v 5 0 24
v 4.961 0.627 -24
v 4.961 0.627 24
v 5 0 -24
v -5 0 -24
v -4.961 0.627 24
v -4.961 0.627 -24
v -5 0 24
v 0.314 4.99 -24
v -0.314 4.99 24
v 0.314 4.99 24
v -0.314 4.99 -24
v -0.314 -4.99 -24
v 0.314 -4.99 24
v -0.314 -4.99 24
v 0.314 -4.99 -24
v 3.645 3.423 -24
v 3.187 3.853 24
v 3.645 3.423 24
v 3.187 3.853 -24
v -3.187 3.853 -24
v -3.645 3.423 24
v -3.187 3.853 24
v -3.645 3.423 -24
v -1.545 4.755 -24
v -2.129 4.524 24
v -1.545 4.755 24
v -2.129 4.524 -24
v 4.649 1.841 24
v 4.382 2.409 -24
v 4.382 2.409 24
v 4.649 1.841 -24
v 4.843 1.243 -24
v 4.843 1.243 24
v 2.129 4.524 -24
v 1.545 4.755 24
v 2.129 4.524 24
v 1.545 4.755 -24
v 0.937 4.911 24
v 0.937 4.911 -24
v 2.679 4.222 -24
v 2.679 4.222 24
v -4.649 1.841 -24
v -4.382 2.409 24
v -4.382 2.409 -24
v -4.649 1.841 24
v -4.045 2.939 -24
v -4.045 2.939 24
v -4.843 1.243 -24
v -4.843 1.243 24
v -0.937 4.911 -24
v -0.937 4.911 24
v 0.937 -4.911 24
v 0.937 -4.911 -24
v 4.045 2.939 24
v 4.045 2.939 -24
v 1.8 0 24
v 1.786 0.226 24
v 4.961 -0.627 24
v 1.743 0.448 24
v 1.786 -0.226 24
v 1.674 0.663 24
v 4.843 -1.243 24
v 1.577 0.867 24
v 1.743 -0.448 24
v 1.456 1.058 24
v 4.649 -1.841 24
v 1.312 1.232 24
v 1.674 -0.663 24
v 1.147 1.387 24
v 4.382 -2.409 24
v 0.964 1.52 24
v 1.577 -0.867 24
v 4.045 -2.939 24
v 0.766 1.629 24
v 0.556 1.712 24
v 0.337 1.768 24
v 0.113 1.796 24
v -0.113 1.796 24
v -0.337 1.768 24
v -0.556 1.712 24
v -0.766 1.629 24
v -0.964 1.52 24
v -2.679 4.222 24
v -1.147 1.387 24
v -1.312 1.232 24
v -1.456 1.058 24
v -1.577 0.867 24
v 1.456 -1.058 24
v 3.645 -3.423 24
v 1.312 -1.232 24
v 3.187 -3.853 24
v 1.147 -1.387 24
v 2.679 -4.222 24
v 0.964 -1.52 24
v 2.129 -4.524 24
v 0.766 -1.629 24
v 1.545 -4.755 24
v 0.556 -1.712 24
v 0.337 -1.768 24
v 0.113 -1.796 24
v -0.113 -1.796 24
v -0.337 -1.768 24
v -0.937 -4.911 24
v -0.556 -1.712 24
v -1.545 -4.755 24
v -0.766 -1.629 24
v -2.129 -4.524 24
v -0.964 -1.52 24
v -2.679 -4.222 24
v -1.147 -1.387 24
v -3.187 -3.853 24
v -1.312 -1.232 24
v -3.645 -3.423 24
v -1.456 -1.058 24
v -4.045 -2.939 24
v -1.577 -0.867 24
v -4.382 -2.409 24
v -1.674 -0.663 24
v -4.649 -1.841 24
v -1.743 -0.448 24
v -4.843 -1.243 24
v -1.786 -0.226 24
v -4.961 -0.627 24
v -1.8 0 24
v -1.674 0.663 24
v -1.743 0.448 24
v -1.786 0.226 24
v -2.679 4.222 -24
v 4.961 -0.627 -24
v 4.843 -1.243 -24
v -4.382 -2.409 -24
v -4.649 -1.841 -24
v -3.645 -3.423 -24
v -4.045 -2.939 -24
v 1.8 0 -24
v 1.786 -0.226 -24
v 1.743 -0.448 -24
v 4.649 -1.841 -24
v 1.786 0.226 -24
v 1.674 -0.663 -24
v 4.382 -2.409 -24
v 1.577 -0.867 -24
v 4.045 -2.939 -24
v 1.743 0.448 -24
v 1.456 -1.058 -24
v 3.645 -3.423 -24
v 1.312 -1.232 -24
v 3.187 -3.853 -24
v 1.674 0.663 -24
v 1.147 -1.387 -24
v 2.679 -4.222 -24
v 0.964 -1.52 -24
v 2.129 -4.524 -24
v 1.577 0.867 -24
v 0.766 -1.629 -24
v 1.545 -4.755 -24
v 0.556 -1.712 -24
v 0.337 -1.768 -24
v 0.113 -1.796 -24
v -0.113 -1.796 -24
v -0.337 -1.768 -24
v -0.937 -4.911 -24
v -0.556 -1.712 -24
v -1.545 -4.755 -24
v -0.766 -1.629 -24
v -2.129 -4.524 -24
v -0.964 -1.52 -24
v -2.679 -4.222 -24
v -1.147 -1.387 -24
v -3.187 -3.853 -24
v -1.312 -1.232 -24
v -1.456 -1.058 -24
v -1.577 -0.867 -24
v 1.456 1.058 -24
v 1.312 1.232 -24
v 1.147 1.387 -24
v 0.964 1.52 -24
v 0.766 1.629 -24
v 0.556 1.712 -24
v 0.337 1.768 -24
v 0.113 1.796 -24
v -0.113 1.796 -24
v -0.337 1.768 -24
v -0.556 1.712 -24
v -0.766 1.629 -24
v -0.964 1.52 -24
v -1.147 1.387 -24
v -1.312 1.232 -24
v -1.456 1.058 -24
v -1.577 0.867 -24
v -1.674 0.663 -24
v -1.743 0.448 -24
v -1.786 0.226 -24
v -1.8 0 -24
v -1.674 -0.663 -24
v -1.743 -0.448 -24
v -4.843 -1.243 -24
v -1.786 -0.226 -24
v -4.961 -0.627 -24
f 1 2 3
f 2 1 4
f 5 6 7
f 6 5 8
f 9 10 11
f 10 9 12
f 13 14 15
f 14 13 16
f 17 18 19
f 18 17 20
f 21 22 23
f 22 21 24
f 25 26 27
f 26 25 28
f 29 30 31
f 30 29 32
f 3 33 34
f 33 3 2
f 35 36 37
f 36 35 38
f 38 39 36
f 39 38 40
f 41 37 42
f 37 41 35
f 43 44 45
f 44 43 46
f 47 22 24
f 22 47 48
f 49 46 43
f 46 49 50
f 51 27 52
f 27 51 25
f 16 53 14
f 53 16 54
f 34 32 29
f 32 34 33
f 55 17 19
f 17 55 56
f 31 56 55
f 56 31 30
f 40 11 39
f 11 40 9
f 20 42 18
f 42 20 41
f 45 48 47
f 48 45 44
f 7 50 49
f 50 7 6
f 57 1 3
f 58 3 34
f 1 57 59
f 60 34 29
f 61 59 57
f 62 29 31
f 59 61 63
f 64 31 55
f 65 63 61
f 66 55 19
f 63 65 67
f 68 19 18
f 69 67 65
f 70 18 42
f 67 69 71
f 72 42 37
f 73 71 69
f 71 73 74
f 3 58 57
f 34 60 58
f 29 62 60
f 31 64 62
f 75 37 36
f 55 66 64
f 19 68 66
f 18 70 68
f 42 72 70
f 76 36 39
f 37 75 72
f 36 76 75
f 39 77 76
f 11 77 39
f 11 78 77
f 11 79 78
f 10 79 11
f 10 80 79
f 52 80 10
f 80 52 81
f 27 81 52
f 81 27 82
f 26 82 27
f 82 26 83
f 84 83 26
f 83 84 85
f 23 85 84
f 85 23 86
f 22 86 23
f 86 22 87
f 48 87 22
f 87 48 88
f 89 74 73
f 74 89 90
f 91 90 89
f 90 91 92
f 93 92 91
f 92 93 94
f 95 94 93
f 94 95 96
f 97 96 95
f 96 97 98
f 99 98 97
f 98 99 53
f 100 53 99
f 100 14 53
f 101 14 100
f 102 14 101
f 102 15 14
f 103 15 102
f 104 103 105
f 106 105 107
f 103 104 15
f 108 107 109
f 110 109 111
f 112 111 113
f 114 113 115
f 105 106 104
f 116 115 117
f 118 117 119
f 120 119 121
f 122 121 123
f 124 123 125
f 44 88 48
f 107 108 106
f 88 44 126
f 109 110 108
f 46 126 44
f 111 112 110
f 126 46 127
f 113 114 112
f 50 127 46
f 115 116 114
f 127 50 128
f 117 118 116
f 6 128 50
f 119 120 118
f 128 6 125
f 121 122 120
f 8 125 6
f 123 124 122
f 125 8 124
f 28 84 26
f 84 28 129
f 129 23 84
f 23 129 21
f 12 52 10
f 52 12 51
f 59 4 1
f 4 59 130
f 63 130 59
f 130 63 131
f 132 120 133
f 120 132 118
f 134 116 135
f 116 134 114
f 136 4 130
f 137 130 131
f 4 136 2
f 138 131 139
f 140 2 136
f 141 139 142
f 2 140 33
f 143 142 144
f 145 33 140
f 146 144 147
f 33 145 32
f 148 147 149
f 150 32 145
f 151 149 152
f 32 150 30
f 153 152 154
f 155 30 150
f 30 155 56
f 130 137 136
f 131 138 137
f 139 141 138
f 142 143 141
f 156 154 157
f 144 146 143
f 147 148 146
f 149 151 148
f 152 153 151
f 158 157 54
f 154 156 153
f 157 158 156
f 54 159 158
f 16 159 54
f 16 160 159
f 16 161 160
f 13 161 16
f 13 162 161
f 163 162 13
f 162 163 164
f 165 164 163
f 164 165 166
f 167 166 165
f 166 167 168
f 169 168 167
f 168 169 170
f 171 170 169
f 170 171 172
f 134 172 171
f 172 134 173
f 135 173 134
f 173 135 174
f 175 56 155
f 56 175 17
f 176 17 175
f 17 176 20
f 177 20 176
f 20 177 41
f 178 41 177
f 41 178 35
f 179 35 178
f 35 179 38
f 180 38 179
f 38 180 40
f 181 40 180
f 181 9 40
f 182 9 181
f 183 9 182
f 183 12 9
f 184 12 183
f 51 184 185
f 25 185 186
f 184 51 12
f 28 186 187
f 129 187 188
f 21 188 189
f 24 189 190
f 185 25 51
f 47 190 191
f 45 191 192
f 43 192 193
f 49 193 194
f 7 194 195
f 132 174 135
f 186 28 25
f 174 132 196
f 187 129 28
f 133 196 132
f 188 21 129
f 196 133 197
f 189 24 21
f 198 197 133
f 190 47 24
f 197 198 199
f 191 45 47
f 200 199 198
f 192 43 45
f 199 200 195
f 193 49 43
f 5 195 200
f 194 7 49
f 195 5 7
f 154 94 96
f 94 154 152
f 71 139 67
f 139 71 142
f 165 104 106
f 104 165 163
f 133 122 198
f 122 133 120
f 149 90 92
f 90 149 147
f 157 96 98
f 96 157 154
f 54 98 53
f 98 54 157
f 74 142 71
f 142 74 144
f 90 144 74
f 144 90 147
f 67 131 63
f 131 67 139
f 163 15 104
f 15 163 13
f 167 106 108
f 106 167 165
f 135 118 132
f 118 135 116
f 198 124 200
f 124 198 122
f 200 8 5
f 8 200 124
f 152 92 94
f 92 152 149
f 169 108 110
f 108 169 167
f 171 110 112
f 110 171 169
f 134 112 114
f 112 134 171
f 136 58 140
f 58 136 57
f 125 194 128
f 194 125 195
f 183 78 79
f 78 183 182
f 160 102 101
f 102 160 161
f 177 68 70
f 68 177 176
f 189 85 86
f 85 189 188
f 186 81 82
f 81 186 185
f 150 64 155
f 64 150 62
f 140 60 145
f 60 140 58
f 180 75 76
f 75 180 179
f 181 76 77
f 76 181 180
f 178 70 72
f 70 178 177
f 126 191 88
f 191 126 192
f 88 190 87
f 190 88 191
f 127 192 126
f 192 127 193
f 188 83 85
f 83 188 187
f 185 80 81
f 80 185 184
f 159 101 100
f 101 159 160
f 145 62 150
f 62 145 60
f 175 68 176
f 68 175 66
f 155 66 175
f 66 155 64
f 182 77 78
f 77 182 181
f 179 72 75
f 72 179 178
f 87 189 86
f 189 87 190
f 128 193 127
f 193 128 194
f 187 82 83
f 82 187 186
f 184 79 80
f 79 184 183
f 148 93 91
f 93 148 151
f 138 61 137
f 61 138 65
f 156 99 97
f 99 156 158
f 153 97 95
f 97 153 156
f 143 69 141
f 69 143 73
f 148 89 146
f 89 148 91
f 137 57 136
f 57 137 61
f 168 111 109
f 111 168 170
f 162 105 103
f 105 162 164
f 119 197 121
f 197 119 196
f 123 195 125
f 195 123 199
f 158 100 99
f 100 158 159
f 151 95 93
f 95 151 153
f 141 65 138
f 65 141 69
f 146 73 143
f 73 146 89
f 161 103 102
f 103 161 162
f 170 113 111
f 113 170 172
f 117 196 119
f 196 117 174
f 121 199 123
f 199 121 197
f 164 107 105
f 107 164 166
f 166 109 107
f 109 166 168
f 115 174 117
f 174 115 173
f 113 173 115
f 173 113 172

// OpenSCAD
$fn = 50;


difference() {
	union() {
		translate(v = [0, 0, -24.0000000000]) {
			cylinder(h = 48, r = 5.0000000000);
		}
	}
	union() {
		translate(v = [0, 0, -100.0000000000]) {
			cylinder(h = 200, r = 1.8000000000);
		}
	}
}
